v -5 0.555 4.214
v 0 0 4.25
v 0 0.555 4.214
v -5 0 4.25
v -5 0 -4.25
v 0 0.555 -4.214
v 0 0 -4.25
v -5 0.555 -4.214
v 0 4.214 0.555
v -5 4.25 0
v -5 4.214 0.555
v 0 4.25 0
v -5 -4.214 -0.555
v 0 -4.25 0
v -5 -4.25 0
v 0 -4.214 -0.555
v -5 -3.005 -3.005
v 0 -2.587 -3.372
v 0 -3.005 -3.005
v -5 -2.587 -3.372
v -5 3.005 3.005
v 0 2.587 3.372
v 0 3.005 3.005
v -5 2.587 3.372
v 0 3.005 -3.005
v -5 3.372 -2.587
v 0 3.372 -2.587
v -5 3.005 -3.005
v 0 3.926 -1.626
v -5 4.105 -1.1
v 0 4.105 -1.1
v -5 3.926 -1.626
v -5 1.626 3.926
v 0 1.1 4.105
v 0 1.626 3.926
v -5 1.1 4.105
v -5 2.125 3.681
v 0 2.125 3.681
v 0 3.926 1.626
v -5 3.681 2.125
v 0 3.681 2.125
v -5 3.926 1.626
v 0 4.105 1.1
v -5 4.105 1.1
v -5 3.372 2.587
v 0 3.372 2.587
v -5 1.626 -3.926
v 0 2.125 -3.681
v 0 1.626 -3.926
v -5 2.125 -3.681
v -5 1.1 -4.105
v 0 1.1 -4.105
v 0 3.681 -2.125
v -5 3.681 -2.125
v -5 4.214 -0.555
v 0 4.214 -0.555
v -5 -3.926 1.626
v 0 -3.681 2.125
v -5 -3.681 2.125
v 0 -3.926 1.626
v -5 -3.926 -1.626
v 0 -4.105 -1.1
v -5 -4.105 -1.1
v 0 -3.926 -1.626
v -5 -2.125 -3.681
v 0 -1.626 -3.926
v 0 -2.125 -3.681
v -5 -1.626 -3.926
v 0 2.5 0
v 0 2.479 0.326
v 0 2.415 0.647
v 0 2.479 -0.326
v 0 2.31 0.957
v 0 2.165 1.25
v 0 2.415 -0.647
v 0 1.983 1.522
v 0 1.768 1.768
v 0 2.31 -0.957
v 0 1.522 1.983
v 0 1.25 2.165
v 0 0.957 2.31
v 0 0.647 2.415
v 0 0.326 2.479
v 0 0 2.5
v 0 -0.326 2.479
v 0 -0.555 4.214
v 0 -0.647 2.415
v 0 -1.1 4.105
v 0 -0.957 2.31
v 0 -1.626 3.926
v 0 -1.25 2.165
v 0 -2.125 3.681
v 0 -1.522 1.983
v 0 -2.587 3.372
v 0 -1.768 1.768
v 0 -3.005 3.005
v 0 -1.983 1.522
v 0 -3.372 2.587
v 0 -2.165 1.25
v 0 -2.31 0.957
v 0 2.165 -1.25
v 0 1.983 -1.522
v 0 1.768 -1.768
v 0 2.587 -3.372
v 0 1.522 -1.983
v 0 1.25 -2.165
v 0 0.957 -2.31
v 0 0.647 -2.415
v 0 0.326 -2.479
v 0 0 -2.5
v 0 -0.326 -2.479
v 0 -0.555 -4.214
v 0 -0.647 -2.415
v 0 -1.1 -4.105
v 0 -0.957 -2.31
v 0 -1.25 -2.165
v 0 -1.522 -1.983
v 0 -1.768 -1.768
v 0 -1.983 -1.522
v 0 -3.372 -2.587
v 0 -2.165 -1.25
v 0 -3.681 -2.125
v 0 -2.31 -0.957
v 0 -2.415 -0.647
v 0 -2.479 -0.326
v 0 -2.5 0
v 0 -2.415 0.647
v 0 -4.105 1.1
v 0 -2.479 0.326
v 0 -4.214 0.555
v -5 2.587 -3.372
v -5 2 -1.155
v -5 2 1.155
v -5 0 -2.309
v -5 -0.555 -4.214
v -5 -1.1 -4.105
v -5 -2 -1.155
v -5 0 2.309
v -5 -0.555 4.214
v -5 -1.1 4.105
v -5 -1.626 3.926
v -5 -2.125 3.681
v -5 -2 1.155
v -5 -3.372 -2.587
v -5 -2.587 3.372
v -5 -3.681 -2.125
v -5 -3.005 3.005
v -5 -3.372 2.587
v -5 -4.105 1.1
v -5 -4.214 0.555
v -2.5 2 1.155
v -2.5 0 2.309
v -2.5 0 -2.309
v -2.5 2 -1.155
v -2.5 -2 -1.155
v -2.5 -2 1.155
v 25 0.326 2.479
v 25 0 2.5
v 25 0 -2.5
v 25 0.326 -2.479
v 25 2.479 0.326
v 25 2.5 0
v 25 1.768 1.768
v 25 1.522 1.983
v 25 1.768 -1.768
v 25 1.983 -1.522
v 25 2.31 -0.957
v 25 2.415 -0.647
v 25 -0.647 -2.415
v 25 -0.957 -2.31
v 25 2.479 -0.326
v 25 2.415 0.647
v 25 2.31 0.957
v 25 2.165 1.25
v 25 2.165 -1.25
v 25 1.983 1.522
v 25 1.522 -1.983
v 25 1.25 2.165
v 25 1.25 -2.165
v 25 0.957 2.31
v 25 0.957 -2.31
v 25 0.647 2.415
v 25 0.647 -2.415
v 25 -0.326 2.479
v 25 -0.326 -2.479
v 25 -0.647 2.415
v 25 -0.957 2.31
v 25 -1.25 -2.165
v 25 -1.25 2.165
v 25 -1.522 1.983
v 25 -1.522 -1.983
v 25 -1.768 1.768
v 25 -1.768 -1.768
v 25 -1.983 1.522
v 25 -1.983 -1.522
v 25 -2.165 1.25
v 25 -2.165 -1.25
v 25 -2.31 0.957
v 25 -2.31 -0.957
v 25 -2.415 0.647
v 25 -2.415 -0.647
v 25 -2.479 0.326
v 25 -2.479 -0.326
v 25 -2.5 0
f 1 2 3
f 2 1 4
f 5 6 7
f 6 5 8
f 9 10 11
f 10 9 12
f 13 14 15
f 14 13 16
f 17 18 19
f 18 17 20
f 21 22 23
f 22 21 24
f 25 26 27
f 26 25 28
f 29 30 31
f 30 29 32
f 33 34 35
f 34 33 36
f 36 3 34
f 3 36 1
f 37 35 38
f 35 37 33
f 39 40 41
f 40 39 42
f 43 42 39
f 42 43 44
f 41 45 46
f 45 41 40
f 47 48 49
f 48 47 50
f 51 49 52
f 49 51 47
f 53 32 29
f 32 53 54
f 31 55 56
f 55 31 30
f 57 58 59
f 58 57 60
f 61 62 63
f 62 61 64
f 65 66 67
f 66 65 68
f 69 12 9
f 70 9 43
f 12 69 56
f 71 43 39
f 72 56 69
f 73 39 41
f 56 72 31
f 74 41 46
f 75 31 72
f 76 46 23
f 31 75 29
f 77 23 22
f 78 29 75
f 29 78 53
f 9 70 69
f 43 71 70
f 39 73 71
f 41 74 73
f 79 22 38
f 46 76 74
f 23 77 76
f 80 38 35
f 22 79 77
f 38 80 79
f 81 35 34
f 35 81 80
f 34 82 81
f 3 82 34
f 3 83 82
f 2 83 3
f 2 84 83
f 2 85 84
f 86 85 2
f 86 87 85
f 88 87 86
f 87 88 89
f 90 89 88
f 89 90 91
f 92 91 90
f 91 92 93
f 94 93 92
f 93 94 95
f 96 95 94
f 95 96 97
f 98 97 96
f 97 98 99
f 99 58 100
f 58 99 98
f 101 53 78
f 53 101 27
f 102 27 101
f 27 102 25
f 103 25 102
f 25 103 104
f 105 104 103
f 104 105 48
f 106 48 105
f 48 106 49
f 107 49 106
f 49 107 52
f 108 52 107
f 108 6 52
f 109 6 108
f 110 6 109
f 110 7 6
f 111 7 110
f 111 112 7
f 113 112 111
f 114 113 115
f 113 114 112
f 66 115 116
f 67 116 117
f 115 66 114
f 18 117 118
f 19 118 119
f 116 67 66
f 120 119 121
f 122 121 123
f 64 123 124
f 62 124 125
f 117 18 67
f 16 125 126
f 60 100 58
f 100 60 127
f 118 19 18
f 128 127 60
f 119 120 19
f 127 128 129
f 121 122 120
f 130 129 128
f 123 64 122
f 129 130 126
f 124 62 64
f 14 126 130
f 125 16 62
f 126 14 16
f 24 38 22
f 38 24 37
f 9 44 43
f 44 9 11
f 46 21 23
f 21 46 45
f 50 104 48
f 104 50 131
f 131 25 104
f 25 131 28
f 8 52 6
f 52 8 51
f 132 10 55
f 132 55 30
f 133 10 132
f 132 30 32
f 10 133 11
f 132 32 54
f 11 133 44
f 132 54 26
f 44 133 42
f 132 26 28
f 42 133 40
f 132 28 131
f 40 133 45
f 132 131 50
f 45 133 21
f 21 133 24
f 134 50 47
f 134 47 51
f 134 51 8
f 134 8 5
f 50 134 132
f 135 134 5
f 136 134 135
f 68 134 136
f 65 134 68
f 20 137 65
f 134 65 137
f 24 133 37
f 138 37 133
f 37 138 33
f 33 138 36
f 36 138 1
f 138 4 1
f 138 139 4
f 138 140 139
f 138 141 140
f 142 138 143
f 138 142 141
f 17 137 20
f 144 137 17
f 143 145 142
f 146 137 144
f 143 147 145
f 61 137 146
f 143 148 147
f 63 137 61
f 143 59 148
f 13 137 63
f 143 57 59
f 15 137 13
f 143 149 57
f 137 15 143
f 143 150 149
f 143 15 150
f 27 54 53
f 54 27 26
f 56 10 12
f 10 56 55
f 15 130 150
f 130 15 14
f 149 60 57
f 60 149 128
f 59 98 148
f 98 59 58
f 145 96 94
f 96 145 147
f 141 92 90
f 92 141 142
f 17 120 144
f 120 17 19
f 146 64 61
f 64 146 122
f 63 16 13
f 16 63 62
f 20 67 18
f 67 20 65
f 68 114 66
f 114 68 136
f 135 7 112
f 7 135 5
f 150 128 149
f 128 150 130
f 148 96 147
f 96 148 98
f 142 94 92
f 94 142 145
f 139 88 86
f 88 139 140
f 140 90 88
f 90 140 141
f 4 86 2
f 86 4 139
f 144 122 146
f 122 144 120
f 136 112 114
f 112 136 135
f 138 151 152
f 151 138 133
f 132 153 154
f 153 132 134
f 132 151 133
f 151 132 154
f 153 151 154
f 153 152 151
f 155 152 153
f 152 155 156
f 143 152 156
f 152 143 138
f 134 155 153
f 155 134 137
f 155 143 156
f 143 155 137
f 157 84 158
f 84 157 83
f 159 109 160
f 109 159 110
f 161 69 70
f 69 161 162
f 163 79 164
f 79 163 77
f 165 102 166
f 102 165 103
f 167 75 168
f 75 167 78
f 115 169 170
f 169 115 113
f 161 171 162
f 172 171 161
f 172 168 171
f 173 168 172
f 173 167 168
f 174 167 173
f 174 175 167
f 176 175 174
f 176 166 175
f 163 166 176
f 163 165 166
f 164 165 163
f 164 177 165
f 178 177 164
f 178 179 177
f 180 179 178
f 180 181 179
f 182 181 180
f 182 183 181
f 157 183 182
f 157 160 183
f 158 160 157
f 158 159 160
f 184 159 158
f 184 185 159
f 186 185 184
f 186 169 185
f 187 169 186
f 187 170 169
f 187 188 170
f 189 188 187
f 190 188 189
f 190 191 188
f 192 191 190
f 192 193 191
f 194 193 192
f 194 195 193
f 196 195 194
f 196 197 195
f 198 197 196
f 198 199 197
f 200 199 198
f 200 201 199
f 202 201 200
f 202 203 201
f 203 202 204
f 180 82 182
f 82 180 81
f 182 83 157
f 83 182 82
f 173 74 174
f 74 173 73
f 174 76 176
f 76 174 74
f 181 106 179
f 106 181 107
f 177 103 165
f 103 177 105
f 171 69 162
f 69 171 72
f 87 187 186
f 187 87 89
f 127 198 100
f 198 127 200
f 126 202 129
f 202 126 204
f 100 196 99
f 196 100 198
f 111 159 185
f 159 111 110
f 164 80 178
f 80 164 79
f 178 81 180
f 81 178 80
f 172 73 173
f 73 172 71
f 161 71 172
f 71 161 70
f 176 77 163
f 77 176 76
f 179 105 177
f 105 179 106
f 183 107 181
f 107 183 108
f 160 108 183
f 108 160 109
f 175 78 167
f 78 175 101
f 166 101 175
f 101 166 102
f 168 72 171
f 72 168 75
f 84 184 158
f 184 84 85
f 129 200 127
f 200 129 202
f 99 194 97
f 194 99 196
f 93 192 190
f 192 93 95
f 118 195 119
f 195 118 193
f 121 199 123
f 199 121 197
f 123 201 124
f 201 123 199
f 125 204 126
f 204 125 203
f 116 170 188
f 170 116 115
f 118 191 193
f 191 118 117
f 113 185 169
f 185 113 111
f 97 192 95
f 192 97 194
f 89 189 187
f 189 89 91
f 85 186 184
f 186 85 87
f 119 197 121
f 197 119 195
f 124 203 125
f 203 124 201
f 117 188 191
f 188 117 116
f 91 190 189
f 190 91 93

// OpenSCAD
// file: ../../lib/nutsnbolts/data-access.scad
// Norm Nuts and Bolts - a OpenSCAD library
// Copyright (C) 2012  Johannes Kneer

// This program is free software: you can redistribute it and/or modify
// it under the terms of the GNU General Public License as published by
// the Free Software Foundation, either version 3 of the License, or
// (at your option) any later version.

// This program is distributed in the hope that it will be useful,
// but WITHOUT ANY WARRANTY; without even the implied warranty of
// MERCHANTABILITY or FITNESS FOR A PARTICULAR PURPOSE.  See the
// GNU General Public License for more details.

// You should have received a copy of the GNU General Public License
// along with this program.  If not, see <http://www.gnu.org/licenses/>.


// DATABASE ACCESS FUNCTIONS AND CONSTANTS



// == CONSTANTS ==

// screw table access keys
_NB_S_DESC            = 0;
_NB_S_FAMKEY			    = 1;
_NB_S_LENGTH          = 2;
_NB_S_NOTHREAD_LENGTH = 3;

_NB_F_DESC			      = 0;
_NB_F_OUTER_DIA       = 1;
_NB_F_INNER_DIA       = 2;
_NB_F_LEAD            = 3;
_NB_F_KEY             = 4;
_NB_F_KEY_DEPTH       = 5;
_NB_F_HEAD_HEIGHT     = 6;
_NB_F_HEAD_DIA        = 7;
_NB_F_NUT_KEY         = 8;
_NB_F_NUT_HEIGHT      = 9;
_NB_F_PITCH_FINE      = 10;
_NB_F_PITCH_MEDIUM    = 11;
_NB_F_PITCH_COARSE    = 12;


// == FUNCTIONS ==

// _get_screw("descriptor")   with descriptor = M8x25
//   find the line for a general object in the data matrix

function _get_screw(n) = data_screw[search([n], data_screw)[0]];
function _get_screw_fam(n) = data_screw_fam[search([_get_screw(n)[_NB_S_FAMKEY]], data_screw_fam)[0]];

function _get_fam(n) = data_screw_fam[search([n], data_screw_fam)[0]];


// _get_XXXXX("descriptor") functions
// find a single property in the database

function _get_desc(n)        = _get_screw(n)[_NB_S_DESC];
function _get_famkey(n)         = _get_screw(n)[_NB_S_FAMKEY];
function _get_length(n)      = _get_screw(n)[_NB_S_LENGTH];
function _get_nt_length(n)   = _get_screw(n)[_NB_S_NOTHREAD_LENGTH];

function _get_outer_dia(n)   = _get_screw_fam(n)[_NB_F_OUTER_DIA];
function _get_inner_dia(n)   = _get_screw_fam(n)[_NB_F_INNER_DIA];
function _get_lead(n)        = _get_screw_fam(n)[_NB_F_LEAD];
function _get_head_height(n) = _get_screw_fam(n)[_NB_F_HEAD_HEIGHT];
function _get_head_dia(n)    = _get_screw_fam(n)[_NB_F_HEAD_DIA];
function _get_nut_key(n)     = _get_screw_fam(n)[_NB_F_NUT_KEY];
function _get_nut_height(n)  = _get_screw_fam(n)[_NB_F_NUT_HEIGHT];
function _get_fine_pitch(n)  = _get_screw_fam(n)[_NB_F_PITCH_FINE];
function _get_medium_pitch(n)  = _get_screw_fam(n)[_NB_F_PITCH_MEDIUM];
function _get_coarse_pitch(n)  = _get_screw_fam(n)[_NB_F_PITCH_COARSE];
// main file
/**********************************************************************************************************************
 **
 ** parts/vitamins/screw_M5x25.scad
 **
 ** This file renders a screw of the dimensions specified by the file name.
 **
 **********************************************************************************************************************/

include <../../lib/nutsnbolts/cyl_head_bolt.scad>;

$fn = 48;
rotate([0, -90, 0])
	screw("M5x25"); 
